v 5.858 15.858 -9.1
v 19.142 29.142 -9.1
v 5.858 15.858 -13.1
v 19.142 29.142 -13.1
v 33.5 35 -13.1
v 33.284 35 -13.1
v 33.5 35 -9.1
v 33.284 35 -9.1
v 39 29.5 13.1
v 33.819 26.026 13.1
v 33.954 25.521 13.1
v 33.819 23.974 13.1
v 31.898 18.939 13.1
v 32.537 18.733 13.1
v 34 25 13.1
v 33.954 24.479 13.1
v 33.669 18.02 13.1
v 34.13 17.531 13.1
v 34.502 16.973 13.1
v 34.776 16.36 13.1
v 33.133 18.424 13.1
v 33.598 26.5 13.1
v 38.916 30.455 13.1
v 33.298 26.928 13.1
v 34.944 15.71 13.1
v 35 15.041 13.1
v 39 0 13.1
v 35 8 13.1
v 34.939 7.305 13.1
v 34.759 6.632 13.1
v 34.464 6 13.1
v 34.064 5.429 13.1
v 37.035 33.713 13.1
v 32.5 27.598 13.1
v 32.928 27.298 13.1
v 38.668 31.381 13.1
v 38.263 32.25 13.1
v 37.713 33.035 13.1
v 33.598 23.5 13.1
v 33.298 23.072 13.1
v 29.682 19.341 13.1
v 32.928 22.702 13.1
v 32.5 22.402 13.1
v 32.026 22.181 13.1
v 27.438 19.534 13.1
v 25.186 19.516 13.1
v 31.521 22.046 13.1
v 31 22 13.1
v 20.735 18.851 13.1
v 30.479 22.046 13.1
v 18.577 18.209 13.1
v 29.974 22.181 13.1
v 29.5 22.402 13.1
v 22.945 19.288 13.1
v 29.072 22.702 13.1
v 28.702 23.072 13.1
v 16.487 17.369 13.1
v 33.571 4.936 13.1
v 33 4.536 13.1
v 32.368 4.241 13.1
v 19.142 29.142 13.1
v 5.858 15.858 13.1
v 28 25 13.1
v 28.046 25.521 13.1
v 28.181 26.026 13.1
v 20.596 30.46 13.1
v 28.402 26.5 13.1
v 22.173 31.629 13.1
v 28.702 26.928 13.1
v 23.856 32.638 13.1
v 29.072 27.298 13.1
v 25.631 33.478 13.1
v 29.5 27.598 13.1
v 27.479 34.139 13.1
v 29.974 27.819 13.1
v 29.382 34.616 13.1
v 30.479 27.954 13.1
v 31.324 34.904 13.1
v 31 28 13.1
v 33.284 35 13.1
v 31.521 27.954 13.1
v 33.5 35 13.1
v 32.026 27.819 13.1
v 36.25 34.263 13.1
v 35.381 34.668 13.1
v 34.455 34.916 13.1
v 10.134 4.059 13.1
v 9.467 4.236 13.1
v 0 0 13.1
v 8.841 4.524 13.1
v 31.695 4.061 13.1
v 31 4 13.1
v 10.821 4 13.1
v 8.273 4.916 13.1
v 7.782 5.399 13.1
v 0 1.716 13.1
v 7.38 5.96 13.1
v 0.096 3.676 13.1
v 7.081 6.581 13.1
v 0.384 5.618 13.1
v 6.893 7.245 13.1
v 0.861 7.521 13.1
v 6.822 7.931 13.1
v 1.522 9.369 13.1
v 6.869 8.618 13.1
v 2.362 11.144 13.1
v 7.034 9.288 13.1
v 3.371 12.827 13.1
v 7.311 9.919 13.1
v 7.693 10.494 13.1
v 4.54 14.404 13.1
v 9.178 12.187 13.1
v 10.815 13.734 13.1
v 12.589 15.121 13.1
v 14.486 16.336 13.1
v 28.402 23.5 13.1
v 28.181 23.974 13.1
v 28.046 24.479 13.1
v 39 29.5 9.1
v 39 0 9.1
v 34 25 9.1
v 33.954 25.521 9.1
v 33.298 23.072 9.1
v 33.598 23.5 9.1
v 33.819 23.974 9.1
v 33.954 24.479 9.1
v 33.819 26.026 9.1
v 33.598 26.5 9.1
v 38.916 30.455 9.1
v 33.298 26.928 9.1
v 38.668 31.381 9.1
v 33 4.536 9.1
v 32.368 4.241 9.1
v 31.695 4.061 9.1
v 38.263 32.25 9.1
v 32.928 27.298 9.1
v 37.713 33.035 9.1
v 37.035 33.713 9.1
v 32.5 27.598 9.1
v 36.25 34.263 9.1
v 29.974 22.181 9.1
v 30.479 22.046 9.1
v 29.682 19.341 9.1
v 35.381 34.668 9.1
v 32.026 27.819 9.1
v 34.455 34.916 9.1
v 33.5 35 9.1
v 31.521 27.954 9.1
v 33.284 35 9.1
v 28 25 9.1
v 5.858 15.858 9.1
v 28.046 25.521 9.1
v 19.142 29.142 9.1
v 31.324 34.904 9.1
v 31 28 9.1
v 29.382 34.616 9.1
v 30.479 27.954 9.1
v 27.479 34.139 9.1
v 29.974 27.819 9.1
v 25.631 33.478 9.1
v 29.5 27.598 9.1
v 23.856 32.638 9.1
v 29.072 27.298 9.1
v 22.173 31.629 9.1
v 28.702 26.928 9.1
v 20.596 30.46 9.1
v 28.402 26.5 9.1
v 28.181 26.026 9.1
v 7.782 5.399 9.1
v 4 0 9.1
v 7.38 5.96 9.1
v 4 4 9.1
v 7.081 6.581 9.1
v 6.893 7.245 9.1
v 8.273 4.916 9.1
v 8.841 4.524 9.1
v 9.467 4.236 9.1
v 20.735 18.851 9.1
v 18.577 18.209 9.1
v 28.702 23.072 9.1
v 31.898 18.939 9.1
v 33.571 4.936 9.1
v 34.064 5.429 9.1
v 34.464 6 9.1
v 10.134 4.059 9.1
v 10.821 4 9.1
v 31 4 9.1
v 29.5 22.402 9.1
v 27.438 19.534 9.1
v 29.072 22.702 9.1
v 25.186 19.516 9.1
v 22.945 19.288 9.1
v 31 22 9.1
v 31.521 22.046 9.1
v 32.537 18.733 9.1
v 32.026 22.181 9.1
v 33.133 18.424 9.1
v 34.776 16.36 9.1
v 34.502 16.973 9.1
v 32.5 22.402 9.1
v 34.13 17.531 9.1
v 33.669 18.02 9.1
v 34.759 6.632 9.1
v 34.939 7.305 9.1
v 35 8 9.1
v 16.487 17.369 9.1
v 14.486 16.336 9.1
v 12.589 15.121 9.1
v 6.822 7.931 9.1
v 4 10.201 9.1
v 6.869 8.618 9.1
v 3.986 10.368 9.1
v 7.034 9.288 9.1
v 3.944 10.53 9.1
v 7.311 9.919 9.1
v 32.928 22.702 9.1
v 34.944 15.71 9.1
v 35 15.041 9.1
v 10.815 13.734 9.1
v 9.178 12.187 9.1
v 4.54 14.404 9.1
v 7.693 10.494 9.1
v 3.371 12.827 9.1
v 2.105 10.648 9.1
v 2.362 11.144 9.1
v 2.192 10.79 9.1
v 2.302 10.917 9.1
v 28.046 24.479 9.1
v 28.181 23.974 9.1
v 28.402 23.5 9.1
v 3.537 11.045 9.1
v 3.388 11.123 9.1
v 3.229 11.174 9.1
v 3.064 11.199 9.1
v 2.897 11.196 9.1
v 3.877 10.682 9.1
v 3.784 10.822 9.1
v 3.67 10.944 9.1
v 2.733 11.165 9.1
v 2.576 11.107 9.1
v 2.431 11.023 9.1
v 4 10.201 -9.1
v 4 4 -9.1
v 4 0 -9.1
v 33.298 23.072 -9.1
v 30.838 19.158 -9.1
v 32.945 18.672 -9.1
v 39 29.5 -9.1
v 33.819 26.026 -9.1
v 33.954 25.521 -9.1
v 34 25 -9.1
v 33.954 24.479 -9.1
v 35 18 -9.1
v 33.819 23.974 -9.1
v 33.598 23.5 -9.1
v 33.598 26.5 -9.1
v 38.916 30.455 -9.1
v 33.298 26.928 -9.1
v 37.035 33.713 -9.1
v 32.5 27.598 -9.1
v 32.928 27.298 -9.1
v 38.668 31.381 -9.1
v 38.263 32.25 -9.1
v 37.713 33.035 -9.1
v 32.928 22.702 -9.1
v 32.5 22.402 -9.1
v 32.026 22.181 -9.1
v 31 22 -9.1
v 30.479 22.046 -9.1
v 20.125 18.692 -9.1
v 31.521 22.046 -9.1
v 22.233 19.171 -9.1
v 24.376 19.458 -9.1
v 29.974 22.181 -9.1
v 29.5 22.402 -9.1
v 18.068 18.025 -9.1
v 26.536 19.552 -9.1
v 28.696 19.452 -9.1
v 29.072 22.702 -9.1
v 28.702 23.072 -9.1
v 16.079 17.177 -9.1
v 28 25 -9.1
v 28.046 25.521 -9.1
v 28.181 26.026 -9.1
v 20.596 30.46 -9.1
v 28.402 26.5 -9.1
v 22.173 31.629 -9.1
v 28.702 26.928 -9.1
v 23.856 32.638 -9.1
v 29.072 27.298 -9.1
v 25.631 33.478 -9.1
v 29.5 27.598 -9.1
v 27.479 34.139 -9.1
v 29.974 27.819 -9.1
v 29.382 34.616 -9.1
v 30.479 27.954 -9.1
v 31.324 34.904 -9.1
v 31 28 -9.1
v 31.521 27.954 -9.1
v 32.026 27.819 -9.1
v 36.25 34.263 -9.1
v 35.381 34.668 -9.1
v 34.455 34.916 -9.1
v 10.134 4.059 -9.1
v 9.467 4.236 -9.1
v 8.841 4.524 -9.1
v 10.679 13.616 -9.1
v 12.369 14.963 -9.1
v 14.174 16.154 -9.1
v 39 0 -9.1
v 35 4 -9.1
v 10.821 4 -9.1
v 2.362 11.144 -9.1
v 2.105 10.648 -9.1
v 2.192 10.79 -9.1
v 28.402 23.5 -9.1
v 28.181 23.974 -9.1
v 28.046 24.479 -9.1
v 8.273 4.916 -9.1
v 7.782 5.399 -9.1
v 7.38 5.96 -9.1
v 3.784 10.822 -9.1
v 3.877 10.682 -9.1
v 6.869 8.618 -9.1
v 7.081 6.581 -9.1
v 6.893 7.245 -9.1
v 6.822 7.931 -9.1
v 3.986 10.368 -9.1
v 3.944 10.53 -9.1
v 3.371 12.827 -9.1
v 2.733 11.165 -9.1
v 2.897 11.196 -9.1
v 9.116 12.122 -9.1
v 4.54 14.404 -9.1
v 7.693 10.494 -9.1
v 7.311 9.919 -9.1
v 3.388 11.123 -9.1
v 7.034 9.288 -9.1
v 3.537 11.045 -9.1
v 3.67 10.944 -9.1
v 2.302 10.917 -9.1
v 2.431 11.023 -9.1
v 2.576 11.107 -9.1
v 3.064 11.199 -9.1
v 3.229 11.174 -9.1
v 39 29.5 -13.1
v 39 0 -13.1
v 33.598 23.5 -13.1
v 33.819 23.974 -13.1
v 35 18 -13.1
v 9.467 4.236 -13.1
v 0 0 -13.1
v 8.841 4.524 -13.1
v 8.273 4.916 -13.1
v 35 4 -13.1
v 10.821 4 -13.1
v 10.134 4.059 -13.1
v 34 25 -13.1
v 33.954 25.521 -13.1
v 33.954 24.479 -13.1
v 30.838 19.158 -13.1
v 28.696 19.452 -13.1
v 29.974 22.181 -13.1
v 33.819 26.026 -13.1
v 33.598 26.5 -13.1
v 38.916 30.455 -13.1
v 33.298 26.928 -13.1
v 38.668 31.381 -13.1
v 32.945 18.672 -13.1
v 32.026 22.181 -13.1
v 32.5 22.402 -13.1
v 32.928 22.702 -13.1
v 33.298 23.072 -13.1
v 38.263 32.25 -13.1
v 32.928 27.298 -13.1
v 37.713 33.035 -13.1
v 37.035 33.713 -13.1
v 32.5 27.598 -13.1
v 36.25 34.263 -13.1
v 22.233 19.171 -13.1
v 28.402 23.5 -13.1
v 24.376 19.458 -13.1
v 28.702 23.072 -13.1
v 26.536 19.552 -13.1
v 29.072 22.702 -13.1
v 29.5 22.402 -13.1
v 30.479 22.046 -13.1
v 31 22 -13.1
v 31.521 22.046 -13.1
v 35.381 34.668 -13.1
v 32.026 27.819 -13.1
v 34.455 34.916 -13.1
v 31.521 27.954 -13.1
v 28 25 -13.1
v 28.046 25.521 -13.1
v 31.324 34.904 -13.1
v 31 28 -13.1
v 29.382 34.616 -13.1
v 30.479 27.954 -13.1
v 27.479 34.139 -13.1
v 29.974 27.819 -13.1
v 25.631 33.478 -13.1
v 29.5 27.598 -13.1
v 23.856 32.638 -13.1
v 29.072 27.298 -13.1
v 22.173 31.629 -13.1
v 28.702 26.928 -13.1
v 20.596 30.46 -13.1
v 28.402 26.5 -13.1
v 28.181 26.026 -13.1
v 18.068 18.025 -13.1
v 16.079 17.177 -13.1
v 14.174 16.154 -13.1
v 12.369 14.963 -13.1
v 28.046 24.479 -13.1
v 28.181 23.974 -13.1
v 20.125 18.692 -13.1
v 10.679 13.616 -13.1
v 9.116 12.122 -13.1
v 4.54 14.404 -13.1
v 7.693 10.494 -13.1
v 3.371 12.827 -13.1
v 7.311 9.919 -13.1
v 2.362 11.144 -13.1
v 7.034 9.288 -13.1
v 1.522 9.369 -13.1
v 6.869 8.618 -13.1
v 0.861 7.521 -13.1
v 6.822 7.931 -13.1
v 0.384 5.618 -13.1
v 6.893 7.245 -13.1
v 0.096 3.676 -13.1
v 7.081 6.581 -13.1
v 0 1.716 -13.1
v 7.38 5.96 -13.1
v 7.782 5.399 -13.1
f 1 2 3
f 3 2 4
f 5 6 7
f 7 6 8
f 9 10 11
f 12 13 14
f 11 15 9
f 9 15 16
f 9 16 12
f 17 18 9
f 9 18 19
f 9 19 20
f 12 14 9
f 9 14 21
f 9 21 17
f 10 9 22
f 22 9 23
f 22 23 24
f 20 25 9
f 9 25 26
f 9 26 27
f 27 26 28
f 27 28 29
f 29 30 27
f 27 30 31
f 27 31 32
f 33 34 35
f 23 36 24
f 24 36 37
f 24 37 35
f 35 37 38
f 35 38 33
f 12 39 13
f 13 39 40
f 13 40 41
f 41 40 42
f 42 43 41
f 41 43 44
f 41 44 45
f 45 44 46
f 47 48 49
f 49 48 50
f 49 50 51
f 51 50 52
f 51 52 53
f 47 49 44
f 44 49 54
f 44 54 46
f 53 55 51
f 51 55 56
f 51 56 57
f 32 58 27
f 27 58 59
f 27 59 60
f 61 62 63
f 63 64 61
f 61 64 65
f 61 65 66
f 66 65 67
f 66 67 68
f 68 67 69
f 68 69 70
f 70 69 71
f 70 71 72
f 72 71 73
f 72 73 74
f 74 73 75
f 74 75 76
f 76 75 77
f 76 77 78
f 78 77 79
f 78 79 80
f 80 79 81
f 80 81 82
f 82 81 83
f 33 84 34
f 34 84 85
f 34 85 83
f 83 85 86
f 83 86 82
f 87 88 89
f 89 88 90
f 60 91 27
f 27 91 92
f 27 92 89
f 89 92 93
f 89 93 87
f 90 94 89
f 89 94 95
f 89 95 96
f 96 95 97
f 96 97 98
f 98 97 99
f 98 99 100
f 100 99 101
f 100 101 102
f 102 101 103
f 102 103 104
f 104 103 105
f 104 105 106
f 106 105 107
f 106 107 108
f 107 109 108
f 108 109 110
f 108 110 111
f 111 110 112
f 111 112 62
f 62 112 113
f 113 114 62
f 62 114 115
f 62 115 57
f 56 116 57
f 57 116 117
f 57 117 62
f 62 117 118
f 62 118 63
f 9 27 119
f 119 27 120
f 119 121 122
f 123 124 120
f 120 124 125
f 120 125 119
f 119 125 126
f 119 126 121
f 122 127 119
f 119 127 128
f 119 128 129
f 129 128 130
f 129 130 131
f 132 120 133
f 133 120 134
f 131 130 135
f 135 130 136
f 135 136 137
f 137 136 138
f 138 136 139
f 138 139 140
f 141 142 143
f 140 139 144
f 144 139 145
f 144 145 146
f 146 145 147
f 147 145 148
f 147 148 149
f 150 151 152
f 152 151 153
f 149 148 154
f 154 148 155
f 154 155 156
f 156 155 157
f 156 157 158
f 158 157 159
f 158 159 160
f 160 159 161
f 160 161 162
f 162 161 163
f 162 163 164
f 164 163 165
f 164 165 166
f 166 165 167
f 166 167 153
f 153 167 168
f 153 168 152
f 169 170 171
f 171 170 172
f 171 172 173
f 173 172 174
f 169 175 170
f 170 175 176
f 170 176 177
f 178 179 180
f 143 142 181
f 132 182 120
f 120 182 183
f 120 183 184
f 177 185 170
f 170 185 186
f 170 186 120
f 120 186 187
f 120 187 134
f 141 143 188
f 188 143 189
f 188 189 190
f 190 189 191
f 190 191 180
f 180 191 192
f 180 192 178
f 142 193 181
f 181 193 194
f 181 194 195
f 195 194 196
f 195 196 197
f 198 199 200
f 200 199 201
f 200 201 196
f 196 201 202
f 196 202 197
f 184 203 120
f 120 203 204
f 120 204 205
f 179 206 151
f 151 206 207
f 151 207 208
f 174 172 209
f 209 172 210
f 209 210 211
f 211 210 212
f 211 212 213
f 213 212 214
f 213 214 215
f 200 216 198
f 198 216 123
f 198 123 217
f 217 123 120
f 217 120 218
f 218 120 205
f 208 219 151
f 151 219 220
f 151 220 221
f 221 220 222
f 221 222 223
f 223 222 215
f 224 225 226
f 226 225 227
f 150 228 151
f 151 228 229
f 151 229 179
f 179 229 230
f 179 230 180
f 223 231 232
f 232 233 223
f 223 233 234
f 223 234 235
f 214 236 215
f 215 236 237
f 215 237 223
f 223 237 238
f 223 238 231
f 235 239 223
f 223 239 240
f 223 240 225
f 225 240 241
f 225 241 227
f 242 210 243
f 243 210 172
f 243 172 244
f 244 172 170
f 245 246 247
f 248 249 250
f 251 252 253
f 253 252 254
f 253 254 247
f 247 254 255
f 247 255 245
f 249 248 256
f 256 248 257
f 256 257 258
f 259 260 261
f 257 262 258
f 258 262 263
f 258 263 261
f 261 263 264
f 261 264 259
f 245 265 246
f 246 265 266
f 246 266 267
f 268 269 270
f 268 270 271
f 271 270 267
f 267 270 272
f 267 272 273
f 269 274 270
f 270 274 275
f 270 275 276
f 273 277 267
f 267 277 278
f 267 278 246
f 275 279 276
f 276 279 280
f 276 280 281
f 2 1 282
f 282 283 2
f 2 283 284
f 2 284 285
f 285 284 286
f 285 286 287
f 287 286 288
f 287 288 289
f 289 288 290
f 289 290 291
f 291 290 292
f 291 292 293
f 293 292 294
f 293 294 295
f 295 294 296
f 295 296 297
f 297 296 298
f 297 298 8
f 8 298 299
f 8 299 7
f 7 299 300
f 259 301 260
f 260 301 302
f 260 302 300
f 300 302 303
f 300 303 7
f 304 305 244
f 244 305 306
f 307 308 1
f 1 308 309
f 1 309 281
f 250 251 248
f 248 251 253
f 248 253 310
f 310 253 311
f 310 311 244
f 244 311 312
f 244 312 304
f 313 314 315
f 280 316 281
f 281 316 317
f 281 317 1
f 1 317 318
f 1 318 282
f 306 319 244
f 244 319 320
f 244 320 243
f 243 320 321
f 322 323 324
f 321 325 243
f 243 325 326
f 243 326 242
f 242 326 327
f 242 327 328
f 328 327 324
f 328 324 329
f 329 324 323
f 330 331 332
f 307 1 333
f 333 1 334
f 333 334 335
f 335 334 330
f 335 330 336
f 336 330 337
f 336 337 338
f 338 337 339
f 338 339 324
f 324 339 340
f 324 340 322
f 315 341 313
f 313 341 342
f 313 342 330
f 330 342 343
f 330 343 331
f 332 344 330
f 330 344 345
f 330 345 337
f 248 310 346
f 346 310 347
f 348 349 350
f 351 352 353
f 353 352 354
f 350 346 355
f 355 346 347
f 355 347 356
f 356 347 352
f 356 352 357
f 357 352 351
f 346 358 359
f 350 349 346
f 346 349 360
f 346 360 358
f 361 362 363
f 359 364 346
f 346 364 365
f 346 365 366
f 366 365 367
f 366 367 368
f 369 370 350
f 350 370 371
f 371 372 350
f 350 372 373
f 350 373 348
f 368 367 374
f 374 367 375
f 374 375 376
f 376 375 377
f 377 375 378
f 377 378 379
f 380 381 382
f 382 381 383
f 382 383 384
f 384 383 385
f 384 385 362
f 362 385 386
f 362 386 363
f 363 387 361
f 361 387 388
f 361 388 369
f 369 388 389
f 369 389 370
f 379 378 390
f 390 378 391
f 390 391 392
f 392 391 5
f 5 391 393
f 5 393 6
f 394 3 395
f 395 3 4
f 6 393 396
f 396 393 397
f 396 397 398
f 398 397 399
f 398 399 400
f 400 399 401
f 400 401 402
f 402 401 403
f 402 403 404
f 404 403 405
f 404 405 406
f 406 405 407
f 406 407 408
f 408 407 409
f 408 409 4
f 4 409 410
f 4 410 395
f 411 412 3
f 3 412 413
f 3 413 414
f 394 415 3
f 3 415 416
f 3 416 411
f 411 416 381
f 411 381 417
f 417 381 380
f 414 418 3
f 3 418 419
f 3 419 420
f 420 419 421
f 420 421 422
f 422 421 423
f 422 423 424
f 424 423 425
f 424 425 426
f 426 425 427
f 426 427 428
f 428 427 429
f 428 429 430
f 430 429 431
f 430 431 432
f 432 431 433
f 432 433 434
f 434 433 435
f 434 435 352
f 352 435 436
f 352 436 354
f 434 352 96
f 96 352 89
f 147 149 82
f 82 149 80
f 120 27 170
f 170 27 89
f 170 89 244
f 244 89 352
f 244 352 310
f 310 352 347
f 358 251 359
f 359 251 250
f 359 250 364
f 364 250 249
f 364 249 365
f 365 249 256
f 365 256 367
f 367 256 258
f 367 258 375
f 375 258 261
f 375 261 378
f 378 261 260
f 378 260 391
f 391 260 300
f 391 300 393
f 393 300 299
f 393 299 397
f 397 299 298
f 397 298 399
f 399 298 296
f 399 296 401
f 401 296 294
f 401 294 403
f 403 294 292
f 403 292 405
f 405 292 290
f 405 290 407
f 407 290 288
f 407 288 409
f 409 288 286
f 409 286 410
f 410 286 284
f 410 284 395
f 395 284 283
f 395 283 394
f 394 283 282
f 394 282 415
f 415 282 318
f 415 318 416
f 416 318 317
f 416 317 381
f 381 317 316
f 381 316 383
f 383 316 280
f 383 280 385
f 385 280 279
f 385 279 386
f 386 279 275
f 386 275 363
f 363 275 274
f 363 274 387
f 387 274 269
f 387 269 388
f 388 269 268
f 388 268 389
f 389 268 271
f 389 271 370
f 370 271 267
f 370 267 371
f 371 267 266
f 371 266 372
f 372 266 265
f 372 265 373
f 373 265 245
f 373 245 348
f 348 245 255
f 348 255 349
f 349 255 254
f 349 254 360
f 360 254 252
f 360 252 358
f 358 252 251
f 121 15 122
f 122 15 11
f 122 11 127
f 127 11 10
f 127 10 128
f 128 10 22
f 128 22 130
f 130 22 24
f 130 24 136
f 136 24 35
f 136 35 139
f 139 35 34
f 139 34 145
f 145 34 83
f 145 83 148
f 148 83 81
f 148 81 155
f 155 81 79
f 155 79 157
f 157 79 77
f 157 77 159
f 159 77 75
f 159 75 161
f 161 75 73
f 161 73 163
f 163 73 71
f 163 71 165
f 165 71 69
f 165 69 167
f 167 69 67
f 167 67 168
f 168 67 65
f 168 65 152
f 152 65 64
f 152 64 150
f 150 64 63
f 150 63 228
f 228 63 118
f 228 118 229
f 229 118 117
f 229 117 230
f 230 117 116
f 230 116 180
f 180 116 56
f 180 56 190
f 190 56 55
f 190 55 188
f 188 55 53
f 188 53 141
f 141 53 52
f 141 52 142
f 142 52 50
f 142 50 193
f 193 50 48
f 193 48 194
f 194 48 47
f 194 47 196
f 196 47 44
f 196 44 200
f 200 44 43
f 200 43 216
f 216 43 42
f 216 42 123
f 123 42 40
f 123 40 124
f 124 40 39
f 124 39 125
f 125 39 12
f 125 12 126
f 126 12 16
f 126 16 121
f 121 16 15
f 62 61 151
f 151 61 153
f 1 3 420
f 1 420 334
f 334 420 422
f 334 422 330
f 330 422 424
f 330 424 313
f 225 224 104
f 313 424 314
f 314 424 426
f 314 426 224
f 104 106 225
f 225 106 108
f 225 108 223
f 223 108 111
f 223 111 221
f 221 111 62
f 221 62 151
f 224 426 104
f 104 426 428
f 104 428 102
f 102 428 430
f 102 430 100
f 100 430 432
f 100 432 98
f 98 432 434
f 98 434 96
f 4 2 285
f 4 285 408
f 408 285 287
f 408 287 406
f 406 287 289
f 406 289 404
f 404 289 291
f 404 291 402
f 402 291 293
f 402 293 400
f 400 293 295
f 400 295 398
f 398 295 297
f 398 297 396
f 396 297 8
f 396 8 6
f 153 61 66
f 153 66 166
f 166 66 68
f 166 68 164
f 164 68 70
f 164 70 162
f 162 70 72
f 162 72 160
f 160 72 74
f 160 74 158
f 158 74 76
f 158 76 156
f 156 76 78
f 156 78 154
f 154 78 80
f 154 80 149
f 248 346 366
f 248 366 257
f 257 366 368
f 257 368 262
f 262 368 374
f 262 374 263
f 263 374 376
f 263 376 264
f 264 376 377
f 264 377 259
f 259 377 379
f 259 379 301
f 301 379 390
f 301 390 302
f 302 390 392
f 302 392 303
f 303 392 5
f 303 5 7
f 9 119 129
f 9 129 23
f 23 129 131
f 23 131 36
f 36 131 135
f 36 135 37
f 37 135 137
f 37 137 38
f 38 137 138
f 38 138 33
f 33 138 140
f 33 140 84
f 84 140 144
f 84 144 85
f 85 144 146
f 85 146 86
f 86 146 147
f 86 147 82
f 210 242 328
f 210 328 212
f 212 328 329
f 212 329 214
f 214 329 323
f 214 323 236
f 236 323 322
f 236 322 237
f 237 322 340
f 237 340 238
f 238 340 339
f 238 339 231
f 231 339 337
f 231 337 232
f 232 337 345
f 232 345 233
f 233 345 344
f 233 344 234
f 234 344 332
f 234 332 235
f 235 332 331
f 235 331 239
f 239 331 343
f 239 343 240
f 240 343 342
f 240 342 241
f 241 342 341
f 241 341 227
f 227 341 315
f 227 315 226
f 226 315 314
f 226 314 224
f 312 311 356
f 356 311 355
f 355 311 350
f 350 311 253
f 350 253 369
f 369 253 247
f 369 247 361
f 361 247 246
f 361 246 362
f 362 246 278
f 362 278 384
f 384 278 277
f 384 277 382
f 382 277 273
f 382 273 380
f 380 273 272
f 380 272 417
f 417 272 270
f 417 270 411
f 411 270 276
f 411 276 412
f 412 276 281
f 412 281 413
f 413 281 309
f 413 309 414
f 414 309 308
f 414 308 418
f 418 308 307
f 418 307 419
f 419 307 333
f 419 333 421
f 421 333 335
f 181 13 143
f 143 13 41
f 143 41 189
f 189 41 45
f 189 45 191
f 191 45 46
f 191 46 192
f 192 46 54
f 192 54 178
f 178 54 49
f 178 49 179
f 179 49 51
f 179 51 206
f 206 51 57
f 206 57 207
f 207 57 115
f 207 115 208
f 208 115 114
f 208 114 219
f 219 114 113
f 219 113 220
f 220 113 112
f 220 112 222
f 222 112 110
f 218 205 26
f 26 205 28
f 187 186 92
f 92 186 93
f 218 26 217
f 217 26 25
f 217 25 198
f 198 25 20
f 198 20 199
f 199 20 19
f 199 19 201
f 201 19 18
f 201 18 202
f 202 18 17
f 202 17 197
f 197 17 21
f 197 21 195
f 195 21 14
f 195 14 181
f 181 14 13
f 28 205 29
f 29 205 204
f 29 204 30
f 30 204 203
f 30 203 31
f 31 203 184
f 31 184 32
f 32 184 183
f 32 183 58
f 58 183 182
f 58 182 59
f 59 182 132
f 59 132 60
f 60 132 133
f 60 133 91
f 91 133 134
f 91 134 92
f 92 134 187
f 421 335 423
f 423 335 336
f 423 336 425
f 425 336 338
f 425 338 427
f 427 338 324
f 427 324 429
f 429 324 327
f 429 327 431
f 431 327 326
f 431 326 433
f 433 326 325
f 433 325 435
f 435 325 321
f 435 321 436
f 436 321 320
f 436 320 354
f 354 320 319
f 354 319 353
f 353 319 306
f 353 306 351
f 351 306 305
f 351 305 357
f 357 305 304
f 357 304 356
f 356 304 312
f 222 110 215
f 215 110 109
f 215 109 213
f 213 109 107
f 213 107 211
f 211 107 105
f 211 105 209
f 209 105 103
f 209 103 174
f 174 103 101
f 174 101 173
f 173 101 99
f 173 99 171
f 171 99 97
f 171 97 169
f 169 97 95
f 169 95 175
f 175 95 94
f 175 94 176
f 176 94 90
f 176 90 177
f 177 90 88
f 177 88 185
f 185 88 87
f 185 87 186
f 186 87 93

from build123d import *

# Parameters (mm, degrees)
BOSS_EXTRUDE1_DEPTH     = 35
CUT_EXTRUDE1_DEPTH      = 55.01490535
CUT_EXTRUDE1_DEPTH_BACK = 55.01490535
SKETCH4_R               = 3
CHAMFER1_SIZE           = 25
FILLET1_R               = 20
FILLET2_R               = 5.5
FILLET3_R               = 1
CUT_EXTRUDE2_DEPTH      = 59.587029281
CUT_EXTRUDE2_DEPTH_BACK = 59.587029281
FILLET4_R               = 4


with BuildPart() as part:
    # Sketch3 → Boss-Extrude1 (new body)
    with BuildSketch(Plane(origin=(0, 0, 0), x_dir=(1, 0, 0), z_dir=(0, 1, 0))):
        Polygon((39, -13.1), (39, -9.1), (4, -9.1), (4, 9.1), (39, 9.1), (39, 13.1), (0, 13.1), (0, -13.1), align=None)
    extrude(amount=BOSS_EXTRUDE1_DEPTH)

    # Sketch4 → Cut-Extrude1 (cut, two sides: drawn at the far end of the back side and taken through both)
    with BuildSketch(Plane.XY.offset(-CUT_EXTRUDE1_DEPTH_BACK)):
        with Locations((31, 25)):
            Circle(SKETCH4_R)
    extrude(amount=CUT_EXTRUDE1_DEPTH + CUT_EXTRUDE1_DEPTH_BACK, mode=Mode.SUBTRACT)

    # Chamfer1
    # the kernel refuses this chamfer: 25 mm, written as the material it takes off along each edge
    with BuildSketch(Plane(origin=(0, 35, -77.392074699), x_dir=(0.9996219169112966, 0.027495876610586317, 0), z_dir=(0, 0, 1))) as chamfer1_piece_1:
        Polygon((CHAMFER1_SIZE * 0.999621916911, -CHAMFER1_SIZE * 0.0274958766106), (-CHAMFER1_SIZE * 0.0274958766106, -CHAMFER1_SIZE * 0.999621916911), (0, 0), align=None)
    extrude(amount=154.784149398, mode=Mode.SUBTRACT)

    # Fillet1
    # the kernel refuses this fillet: 20 mm, written as the material it takes off along each edge
    with BuildSketch(Plane(origin=(0, 10, -33.810678119), x_dir=(0.7071067811862652, 0.7071067811868299, 0), z_dir=(0, 0, 1))) as fillet1_piece_1:
        with BuildLine():
            CenterArc((FILLET1_R * 0.414213562373, -FILLET1_R), FILLET1_R, 90, 45)
            Line((-FILLET1_R * 0.292893218813, -FILLET1_R * 0.292893218813), (0, 0))
            Line((0, 0), (FILLET1_R * 0.414213562373, 0))
        make_face()
    extrude(amount=67.621356237, mode=Mode.SUBTRACT)
    with BuildSketch(Plane(origin=(25, 35, -33.810678119), x_dir=(-0.7071067811862648, -0.7071067811868303, 0), z_dir=(0, 0, 1))) as fillet1_piece_2:
        with BuildLine():
            CenterArc((FILLET1_R * 0.414213562373, FILLET1_R), FILLET1_R, 225, 45)
            Line((-FILLET1_R * 0.292893218814, FILLET1_R * 0.292893218814), (0, 0))
            Line((0, 0), (FILLET1_R * 0.414213562373, 0))
        make_face()
    extrude(amount=45.421356237, mode=Mode.SUBTRACT)
    with BuildSketch(Plane(origin=(25, 35, -11.610678119), x_dir=(1, 0, 0), z_dir=(0, 0, 1))) as fillet1_piece_3:
        with BuildLine():
            CenterArc((FILLET1_R * 0.414213562373, -FILLET1_R), FILLET1_R, 90, 45)
            Line((-FILLET1_R * 0.292893218814, -FILLET1_R * 0.292893218814), (0, 0))
            Line((0, 0), (FILLET1_R * 0.414213562373, 0))
        make_face()
    extrude(amount=45.421356237, mode=Mode.SUBTRACT)

    # Fillet2
    fillet2_edges = [part.edges().sort_by_distance(p)[0] for p in [
        (39, 35, -11.1),
        (39, 35, 11.1),
    ]]
    fillet(fillet2_edges, radius=FILLET2_R)

    # Fillet3
    fillet3_edges = [part.edges().sort_by_distance(p)[0] for p in [
        (4, 13.715728753, 0),
    ]]
    fillet(fillet3_edges, radius=FILLET3_R)

    # Sketch5 → Cut-Extrude2 (cut, two sides: drawn at the far end of the back side and taken through both)
    with BuildSketch(Plane.XY.offset(13.1).offset(-CUT_EXTRUDE2_DEPTH_BACK)):
        with BuildLine():
            Line((4, 4), (35, 4))
            Line((35, 4), (35, 18))
            ThreePointArc((35, 18), (16.600505063, 17.420310217), (4, 4))
        make_face()
    extrude(amount=CUT_EXTRUDE2_DEPTH + CUT_EXTRUDE2_DEPTH_BACK, mode=Mode.SUBTRACT)

    # Fillet4
    fillet4_edges = [part.edges().sort_by_distance(p)[0] for p in [
        (4, 4, 11.1),
        (4, 4, -11.1),
        (35, 18, 11.1),
        (35, 4, 11.1),
    ]]
    fillet(fillet4_edges, radius=FILLET4_R)


solid = part.part
